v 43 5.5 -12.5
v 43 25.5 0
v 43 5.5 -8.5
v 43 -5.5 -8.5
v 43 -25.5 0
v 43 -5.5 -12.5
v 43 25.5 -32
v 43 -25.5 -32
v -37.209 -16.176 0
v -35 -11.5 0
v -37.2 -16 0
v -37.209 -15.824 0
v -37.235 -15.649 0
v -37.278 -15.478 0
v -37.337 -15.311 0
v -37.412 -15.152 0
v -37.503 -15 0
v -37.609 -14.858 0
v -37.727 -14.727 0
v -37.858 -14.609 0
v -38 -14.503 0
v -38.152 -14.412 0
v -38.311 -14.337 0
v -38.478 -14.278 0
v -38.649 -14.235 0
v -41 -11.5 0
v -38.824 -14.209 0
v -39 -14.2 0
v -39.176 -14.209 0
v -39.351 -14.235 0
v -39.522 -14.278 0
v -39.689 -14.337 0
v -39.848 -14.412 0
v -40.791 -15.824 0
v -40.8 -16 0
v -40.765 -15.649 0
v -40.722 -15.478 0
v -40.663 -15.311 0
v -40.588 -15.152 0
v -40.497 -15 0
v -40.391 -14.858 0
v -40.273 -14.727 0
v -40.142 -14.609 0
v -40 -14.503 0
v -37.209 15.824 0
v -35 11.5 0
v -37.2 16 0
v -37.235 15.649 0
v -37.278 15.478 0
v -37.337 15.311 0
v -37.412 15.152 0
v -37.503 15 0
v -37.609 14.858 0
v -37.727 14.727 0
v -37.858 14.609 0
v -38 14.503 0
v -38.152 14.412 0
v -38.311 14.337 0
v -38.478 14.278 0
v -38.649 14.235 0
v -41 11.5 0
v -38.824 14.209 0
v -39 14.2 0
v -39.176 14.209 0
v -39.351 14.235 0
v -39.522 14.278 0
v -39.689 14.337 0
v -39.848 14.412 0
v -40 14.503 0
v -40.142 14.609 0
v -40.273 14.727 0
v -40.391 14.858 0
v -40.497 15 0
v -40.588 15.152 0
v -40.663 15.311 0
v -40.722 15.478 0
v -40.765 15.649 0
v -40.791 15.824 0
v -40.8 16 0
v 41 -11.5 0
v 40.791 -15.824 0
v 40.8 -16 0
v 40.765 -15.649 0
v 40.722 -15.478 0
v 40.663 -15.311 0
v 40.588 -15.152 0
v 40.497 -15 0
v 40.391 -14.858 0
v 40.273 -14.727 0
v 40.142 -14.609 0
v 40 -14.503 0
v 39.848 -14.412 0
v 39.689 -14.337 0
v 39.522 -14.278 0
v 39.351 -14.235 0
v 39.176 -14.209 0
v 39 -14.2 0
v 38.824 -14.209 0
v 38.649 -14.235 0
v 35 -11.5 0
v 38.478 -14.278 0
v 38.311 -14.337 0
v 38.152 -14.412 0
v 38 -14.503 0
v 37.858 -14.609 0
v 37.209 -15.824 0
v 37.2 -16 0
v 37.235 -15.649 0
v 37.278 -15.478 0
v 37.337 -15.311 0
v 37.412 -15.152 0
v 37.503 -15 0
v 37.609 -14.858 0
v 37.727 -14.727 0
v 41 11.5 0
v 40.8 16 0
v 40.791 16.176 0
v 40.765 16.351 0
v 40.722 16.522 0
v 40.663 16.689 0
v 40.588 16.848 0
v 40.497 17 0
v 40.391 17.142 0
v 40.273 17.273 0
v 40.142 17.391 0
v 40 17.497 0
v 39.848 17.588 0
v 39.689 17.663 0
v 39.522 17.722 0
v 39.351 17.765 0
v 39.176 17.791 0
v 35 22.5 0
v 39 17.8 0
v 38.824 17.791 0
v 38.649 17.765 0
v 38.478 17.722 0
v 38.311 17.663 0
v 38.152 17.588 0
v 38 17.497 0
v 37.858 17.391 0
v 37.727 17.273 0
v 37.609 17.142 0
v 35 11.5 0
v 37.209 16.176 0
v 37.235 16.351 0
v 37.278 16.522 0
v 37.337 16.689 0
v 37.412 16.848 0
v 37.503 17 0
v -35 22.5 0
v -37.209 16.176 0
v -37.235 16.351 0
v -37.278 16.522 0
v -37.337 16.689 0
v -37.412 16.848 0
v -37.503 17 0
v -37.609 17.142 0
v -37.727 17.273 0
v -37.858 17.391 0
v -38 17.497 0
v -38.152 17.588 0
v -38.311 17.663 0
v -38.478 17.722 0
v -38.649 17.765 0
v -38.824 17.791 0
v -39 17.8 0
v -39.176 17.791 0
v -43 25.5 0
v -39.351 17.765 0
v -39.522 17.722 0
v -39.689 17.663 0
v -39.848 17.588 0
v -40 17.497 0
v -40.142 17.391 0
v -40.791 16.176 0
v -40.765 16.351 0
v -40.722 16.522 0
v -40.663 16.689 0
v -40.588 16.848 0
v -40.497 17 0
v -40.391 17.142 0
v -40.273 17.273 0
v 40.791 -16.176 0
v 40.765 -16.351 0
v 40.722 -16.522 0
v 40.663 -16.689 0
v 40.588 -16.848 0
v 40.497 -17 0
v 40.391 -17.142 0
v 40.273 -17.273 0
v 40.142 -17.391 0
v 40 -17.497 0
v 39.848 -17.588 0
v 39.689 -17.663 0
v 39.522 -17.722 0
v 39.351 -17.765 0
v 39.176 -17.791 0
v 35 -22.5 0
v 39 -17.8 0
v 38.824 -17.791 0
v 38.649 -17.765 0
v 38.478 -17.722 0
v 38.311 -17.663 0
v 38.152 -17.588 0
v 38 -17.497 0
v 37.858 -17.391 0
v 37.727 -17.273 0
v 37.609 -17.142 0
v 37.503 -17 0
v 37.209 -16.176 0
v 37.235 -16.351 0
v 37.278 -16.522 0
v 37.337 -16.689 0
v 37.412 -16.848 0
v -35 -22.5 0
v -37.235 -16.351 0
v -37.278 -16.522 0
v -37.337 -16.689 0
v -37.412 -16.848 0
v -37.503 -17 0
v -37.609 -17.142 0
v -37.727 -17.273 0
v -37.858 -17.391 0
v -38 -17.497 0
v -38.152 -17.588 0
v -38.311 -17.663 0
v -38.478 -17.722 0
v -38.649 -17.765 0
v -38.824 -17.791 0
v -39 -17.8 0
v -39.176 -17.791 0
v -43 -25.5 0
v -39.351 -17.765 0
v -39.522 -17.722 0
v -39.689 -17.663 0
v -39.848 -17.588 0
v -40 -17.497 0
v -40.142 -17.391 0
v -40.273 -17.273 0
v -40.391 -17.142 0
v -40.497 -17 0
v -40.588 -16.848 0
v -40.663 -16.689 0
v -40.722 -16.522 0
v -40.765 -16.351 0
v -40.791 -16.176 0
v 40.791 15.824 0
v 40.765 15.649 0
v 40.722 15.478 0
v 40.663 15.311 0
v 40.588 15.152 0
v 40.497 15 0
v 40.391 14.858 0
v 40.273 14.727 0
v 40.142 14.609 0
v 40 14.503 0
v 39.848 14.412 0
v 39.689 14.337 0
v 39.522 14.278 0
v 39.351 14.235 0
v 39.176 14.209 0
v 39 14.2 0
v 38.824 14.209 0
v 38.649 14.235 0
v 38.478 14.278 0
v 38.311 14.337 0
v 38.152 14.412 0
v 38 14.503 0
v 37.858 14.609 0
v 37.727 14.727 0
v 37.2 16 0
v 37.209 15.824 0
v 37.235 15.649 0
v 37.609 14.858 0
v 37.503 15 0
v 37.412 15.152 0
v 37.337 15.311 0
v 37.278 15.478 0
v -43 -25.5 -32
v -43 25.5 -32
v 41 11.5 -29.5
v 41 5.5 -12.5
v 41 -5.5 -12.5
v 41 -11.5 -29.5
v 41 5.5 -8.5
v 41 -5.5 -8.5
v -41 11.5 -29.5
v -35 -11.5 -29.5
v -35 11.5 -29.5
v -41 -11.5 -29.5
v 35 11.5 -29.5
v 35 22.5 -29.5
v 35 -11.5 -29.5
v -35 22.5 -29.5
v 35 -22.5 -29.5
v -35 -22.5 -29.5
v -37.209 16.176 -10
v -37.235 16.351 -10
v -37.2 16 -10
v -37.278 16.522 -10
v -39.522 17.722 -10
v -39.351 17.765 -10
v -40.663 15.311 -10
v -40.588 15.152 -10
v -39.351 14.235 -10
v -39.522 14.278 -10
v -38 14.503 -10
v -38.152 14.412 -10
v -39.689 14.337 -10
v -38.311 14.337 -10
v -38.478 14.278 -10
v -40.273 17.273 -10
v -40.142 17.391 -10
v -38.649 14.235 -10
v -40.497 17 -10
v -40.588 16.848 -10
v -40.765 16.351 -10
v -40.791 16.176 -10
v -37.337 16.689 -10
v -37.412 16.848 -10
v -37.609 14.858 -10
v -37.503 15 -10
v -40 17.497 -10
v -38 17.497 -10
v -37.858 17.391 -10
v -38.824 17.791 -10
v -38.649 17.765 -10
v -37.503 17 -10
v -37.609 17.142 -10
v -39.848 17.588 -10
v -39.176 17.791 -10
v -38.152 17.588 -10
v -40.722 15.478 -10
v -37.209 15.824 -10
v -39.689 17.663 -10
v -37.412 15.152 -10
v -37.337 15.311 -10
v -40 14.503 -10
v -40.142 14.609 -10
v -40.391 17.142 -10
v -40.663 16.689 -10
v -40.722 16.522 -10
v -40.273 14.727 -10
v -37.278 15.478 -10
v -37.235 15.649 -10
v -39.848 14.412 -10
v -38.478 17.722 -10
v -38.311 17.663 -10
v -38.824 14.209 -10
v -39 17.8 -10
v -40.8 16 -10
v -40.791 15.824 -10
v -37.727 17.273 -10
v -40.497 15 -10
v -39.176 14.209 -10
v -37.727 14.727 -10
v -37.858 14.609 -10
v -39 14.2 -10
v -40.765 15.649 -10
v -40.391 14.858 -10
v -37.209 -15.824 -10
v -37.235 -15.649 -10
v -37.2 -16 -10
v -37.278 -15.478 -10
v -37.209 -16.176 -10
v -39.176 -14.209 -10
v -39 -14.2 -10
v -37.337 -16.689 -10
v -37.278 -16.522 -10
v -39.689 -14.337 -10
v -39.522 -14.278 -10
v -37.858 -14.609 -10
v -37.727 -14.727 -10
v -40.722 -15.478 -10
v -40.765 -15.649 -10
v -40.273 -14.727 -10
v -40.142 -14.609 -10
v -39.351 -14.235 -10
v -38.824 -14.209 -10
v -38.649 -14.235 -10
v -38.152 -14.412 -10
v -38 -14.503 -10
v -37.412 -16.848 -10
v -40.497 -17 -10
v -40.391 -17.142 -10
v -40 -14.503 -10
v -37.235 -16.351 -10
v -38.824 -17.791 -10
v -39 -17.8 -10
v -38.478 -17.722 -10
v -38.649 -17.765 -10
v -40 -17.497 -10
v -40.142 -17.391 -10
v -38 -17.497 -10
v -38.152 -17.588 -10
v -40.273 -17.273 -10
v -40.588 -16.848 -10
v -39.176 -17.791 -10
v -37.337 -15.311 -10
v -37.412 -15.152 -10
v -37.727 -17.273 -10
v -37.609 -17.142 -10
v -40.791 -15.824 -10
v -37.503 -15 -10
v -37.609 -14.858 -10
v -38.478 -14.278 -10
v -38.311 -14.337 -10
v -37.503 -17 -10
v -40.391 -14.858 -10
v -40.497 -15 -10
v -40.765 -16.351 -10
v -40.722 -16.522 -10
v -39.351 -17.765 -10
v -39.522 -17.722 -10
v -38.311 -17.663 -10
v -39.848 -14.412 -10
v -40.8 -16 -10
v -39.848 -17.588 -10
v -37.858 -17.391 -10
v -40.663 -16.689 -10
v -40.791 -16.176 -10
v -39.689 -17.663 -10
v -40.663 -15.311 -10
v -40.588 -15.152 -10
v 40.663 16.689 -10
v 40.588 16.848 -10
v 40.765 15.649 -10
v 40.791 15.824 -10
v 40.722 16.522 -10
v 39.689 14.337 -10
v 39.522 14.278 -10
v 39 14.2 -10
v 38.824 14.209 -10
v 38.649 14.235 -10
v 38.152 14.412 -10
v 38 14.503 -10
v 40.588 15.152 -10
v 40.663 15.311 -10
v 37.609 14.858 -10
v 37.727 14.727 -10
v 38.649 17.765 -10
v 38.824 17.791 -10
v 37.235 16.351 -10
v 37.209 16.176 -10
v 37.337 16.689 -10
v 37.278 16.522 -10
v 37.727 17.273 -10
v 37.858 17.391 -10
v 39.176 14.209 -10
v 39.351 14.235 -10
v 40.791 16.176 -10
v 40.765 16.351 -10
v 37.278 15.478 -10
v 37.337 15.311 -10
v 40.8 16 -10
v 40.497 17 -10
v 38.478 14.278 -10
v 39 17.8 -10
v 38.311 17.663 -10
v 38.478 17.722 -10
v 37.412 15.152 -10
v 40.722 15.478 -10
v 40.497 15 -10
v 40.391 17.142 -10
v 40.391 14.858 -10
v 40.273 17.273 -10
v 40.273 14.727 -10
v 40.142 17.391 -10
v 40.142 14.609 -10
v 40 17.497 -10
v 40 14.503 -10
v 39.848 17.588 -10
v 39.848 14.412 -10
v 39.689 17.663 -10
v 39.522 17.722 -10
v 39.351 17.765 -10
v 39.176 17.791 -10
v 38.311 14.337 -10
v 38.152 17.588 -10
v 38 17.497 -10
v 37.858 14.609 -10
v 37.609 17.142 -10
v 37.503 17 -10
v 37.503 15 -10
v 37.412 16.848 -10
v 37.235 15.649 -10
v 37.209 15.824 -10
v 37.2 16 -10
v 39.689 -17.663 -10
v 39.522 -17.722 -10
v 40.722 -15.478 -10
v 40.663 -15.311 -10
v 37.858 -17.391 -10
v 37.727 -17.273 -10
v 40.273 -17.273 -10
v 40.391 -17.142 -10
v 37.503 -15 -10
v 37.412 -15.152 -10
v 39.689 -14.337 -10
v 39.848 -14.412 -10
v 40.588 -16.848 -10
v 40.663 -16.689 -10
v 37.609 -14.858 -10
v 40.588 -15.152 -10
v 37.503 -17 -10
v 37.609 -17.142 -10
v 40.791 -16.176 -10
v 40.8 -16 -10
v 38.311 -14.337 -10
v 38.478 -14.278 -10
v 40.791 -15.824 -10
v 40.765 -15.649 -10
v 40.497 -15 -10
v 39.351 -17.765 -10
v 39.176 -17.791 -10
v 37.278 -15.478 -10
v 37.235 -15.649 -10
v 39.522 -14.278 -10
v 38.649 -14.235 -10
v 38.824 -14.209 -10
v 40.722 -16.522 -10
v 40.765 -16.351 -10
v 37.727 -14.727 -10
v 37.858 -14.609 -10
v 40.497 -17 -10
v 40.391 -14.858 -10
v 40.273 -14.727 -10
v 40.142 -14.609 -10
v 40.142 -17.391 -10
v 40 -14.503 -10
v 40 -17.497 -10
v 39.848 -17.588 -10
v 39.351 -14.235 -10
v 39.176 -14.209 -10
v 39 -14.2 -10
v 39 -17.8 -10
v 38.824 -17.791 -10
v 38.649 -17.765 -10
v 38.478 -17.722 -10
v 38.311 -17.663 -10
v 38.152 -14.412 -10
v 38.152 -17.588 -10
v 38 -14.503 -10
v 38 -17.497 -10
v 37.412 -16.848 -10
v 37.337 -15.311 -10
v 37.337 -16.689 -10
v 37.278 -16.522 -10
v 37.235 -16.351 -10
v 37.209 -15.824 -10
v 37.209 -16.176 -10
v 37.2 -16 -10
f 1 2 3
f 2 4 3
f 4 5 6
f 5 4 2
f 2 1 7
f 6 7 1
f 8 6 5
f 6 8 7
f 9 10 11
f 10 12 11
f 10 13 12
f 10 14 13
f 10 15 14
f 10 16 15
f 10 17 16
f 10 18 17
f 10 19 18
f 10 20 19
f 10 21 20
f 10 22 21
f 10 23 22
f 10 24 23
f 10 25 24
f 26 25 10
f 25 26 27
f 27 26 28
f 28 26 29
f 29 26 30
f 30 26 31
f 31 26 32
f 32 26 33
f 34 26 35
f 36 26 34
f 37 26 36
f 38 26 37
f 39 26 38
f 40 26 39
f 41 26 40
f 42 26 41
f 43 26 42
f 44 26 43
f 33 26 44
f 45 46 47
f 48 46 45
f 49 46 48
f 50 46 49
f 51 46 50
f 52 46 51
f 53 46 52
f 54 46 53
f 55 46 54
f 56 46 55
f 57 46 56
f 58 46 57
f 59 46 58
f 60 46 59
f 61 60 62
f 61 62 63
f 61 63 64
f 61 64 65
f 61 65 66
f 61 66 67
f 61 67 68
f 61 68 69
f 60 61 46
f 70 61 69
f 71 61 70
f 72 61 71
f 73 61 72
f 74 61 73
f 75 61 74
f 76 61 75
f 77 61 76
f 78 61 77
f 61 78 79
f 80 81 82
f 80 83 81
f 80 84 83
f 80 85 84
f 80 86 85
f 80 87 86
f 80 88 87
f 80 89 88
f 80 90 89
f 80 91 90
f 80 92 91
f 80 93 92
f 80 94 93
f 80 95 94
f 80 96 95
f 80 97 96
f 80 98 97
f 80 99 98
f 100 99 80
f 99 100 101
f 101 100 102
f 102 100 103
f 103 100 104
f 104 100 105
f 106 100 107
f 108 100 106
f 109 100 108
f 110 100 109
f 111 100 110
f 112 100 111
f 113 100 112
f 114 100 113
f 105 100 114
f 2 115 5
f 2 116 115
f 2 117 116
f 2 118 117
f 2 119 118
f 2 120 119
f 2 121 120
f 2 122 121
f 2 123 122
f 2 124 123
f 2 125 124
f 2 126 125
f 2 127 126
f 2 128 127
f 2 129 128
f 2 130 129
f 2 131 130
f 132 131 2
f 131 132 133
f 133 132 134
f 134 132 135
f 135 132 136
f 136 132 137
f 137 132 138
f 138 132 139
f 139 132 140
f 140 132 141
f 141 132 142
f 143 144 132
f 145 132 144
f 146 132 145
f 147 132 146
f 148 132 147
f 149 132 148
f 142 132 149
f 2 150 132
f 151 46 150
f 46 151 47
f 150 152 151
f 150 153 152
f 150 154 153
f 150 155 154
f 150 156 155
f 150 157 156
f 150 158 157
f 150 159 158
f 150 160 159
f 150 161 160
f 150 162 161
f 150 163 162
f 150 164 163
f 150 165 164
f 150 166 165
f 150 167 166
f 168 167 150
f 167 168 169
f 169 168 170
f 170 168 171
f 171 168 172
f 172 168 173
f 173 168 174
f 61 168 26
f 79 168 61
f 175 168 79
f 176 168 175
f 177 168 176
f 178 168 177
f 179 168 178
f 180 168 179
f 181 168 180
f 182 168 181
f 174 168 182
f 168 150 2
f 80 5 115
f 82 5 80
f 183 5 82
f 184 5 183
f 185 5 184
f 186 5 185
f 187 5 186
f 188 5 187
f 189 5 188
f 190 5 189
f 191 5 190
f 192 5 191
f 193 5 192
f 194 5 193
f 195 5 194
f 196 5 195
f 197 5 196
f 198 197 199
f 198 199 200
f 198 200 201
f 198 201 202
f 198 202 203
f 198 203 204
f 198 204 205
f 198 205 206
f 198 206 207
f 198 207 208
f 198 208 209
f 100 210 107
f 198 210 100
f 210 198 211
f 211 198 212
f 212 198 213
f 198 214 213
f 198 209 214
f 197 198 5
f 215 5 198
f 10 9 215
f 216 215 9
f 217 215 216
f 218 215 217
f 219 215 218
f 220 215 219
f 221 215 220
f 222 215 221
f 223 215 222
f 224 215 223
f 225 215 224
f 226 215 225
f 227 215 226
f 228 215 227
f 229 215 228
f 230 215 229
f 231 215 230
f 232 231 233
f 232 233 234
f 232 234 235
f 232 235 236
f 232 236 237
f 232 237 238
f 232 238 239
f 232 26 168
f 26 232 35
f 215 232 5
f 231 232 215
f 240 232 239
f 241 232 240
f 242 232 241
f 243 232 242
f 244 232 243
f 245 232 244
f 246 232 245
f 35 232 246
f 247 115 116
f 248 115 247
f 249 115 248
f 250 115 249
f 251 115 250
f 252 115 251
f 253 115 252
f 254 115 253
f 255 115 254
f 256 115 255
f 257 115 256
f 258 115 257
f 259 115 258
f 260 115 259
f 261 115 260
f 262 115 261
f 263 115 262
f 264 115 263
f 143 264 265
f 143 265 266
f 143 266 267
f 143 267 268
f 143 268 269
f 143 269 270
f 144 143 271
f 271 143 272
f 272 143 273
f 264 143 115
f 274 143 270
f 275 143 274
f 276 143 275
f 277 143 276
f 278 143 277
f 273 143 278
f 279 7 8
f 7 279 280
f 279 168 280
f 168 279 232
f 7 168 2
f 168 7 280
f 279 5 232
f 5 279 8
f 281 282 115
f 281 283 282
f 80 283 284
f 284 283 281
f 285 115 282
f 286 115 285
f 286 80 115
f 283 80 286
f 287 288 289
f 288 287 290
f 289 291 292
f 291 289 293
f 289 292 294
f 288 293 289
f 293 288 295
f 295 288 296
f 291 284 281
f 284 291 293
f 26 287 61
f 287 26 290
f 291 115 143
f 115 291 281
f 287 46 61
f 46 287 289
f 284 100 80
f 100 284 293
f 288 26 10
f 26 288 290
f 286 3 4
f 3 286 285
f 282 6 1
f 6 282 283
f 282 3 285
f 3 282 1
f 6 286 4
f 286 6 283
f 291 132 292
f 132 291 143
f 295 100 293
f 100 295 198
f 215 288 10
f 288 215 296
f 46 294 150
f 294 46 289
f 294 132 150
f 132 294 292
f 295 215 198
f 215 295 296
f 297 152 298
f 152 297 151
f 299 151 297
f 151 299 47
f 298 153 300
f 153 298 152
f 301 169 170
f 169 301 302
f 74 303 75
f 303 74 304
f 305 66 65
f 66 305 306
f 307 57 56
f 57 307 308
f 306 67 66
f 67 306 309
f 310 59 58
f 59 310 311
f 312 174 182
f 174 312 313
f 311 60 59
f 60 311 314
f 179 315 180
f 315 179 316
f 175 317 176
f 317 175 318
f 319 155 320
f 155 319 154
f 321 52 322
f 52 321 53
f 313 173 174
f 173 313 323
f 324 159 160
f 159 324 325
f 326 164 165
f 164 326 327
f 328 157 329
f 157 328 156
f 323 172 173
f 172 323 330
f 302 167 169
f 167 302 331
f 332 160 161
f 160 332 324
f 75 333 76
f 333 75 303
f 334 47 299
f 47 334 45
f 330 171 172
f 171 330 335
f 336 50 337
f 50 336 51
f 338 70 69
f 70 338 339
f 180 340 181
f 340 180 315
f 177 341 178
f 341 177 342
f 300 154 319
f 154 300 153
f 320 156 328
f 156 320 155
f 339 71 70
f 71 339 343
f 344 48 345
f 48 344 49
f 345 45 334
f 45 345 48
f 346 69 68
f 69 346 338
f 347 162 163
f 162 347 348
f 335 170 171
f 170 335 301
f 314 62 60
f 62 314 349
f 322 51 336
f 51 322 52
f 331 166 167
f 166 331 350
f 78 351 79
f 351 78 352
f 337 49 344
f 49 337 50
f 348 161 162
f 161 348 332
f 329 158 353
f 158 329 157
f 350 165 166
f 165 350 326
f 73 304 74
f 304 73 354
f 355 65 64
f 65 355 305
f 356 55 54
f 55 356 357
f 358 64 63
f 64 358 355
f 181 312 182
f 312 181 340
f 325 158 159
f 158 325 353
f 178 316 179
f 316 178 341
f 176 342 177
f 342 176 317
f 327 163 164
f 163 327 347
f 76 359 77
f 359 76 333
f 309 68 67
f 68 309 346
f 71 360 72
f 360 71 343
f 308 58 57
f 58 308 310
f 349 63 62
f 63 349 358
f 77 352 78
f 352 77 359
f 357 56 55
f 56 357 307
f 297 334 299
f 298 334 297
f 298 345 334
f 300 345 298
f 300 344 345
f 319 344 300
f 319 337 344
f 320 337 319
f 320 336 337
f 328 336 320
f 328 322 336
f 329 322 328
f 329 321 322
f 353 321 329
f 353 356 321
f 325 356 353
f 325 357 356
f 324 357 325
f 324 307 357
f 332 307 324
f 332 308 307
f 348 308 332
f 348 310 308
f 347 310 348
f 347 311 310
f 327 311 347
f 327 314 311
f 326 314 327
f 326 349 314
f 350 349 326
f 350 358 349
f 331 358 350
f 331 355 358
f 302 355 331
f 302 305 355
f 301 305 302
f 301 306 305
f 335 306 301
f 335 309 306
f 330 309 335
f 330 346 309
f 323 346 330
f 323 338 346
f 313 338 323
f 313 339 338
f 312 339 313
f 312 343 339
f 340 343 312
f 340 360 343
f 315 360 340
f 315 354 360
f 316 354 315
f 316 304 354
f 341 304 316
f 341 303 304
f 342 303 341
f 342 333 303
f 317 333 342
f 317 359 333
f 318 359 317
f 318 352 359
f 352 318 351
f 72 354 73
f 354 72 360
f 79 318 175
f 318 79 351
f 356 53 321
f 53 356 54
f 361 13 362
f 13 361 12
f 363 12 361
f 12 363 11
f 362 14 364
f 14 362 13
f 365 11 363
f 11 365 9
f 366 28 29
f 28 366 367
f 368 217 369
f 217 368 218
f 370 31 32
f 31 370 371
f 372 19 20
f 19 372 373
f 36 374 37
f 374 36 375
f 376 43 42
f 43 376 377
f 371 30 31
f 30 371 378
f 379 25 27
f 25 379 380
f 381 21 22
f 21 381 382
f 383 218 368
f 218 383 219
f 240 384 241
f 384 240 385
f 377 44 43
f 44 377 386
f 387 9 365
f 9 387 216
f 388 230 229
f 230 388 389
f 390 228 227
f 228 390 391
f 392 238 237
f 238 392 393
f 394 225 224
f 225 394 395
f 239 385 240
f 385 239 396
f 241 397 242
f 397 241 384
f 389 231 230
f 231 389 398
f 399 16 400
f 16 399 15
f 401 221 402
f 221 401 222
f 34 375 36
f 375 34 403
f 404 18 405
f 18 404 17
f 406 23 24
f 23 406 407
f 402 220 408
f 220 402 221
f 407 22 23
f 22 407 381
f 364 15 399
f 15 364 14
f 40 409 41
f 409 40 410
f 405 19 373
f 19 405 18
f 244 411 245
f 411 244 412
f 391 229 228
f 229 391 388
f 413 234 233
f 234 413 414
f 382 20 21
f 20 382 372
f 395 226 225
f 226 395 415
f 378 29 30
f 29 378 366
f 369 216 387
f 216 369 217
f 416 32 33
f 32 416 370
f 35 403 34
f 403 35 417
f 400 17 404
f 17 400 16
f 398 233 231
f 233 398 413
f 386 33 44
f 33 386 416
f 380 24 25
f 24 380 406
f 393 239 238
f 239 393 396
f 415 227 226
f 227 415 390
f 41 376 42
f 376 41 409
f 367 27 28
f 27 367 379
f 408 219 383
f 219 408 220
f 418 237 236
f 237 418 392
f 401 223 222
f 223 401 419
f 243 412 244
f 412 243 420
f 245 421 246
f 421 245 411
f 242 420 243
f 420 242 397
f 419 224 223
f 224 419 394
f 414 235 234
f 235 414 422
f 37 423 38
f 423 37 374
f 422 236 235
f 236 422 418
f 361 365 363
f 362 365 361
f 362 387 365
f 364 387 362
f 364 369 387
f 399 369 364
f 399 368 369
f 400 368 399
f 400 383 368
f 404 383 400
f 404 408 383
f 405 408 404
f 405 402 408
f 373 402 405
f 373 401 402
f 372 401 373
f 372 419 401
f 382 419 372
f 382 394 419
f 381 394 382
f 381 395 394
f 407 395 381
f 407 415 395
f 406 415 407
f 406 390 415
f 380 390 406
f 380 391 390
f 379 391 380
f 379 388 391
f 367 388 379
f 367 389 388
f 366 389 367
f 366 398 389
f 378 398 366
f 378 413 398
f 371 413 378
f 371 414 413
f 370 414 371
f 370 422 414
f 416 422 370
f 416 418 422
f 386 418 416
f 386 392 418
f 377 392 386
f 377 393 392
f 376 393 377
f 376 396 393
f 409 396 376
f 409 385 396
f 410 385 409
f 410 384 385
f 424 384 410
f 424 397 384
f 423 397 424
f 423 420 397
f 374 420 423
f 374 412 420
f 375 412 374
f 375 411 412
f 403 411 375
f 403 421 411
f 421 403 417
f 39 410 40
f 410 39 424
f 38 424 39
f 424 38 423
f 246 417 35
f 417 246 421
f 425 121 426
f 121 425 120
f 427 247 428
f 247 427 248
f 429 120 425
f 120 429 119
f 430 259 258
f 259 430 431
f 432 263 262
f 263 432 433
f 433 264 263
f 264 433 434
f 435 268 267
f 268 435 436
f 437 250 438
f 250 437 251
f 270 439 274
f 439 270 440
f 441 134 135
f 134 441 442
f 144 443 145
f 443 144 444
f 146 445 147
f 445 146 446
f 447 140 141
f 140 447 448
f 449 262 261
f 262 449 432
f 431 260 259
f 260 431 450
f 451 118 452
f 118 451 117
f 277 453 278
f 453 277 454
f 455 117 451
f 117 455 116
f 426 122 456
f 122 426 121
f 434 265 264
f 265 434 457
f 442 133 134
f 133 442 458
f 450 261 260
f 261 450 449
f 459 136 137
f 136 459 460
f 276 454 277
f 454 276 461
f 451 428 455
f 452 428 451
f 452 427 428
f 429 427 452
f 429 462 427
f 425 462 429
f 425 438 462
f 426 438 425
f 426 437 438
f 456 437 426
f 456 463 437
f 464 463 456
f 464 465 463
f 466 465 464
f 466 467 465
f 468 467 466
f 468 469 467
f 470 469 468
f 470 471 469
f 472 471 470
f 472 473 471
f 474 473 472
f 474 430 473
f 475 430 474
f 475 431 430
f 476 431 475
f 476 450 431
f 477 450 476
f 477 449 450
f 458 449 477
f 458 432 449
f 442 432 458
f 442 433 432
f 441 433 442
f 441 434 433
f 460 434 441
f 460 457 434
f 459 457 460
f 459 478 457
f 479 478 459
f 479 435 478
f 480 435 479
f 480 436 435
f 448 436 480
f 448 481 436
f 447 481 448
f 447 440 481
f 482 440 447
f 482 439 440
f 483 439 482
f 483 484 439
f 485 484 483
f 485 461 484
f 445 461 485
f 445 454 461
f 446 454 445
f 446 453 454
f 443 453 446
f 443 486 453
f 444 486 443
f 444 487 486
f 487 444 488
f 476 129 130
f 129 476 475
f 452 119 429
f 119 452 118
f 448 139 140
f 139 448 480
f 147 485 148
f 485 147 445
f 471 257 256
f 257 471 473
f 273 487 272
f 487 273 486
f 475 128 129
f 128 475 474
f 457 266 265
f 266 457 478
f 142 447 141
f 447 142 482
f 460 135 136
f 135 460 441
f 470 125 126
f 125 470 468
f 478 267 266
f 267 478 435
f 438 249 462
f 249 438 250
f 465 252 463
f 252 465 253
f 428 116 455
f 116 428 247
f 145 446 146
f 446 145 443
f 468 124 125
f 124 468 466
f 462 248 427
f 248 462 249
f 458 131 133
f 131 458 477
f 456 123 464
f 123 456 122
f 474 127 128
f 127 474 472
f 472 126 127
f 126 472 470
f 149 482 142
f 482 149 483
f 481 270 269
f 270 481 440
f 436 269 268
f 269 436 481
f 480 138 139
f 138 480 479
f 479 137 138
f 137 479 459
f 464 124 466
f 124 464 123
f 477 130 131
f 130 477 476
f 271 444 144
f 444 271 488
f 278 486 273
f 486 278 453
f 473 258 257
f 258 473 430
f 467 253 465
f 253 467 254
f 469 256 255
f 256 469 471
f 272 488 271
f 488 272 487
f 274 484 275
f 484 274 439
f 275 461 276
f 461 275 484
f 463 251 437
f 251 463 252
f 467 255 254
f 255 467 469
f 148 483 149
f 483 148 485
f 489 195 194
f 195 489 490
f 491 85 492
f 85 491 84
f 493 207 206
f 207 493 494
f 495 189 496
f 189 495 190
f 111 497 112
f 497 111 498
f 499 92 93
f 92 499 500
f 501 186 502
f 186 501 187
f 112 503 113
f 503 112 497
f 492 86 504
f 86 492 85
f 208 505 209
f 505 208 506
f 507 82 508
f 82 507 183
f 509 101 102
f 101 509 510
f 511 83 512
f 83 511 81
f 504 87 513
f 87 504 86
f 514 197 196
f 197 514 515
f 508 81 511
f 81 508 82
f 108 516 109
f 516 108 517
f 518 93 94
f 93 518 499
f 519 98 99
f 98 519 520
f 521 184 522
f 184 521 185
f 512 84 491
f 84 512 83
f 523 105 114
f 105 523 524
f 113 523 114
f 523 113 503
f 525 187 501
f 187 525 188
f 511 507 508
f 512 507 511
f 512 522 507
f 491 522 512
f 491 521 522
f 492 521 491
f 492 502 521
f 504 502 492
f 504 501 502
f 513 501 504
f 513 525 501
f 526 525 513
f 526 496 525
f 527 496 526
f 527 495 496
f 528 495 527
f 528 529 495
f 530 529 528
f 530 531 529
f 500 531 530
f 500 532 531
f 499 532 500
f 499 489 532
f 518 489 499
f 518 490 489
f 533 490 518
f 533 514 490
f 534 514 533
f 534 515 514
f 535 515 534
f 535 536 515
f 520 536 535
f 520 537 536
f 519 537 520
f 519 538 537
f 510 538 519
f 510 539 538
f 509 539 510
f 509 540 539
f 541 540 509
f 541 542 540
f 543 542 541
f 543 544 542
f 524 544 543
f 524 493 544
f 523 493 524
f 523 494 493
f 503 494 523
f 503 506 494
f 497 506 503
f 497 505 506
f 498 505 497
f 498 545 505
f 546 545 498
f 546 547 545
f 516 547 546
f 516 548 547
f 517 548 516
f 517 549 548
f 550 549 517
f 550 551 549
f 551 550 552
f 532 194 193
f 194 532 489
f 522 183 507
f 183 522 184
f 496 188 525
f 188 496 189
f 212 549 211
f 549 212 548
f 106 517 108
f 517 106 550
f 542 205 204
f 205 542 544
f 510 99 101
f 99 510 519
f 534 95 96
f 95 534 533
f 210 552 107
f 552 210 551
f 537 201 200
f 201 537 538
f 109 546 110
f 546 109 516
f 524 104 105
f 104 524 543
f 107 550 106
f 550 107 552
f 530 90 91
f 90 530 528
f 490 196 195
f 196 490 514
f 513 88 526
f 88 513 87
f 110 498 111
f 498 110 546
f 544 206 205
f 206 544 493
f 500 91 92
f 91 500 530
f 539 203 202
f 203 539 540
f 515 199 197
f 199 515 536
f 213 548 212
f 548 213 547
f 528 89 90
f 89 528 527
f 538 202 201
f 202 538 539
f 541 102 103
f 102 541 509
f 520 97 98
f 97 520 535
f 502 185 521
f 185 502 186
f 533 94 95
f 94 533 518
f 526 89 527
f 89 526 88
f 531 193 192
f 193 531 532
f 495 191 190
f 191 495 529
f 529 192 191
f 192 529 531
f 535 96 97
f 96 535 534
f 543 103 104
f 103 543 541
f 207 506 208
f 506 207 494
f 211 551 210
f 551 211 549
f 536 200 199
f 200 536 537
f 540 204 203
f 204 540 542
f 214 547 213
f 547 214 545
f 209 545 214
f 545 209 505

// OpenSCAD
$fn=64;
difference(){

    {
        xdim2 = 86;
        //need 70 interior
        //ie xdim1-12=70
        //xdim1 = 82
        //an increase of 22
        ydim2 = 51;
        zdim2 = 32;
        translate([-xdim2/2, -ydim2/2, -zdim2])
        {
            cube([xdim2,ydim2,zdim2]);
        }
    }
    xdim1 = 82;
    ydim1 = 23;
    zdim1 = 30;
    //-6.5 was 0 comment of -zdim])
    //positive/negative x end cutout
    translate([-xdim1/2, -ydim1/2, -29.5])
    {
        cube([xdim1,ydim1,zdim1]);
    }
    //programmer cutout
    translate([-xdim1/2+2, -(ydim1-12)/2, -12.5])
    {
        cube([xdim1+2,ydim1-12,4]);
    }
    //positive/negative y side cutout
    translate([-(xdim1-12)/2, -(ydim1+22)/2, -29.5])
    {
        cube([xdim1-12,ydim1+22,zdim1]);
    }
    radius = 1.8;
    translate([-56/2-11,32/2,-10])
    {
        cylinder (18,radius,radius);
    }

    translate([-56/2-11,-32/2,-10])
    {
        cylinder (18,radius,radius);
    }

    translate([56/2+11,32/2,-10])
    {
        cylinder (18,radius,radius);
    }

    translate([56/2+11,-32/2,-10])
    {
        cylinder (18,radius,radius);
    }
    
}
